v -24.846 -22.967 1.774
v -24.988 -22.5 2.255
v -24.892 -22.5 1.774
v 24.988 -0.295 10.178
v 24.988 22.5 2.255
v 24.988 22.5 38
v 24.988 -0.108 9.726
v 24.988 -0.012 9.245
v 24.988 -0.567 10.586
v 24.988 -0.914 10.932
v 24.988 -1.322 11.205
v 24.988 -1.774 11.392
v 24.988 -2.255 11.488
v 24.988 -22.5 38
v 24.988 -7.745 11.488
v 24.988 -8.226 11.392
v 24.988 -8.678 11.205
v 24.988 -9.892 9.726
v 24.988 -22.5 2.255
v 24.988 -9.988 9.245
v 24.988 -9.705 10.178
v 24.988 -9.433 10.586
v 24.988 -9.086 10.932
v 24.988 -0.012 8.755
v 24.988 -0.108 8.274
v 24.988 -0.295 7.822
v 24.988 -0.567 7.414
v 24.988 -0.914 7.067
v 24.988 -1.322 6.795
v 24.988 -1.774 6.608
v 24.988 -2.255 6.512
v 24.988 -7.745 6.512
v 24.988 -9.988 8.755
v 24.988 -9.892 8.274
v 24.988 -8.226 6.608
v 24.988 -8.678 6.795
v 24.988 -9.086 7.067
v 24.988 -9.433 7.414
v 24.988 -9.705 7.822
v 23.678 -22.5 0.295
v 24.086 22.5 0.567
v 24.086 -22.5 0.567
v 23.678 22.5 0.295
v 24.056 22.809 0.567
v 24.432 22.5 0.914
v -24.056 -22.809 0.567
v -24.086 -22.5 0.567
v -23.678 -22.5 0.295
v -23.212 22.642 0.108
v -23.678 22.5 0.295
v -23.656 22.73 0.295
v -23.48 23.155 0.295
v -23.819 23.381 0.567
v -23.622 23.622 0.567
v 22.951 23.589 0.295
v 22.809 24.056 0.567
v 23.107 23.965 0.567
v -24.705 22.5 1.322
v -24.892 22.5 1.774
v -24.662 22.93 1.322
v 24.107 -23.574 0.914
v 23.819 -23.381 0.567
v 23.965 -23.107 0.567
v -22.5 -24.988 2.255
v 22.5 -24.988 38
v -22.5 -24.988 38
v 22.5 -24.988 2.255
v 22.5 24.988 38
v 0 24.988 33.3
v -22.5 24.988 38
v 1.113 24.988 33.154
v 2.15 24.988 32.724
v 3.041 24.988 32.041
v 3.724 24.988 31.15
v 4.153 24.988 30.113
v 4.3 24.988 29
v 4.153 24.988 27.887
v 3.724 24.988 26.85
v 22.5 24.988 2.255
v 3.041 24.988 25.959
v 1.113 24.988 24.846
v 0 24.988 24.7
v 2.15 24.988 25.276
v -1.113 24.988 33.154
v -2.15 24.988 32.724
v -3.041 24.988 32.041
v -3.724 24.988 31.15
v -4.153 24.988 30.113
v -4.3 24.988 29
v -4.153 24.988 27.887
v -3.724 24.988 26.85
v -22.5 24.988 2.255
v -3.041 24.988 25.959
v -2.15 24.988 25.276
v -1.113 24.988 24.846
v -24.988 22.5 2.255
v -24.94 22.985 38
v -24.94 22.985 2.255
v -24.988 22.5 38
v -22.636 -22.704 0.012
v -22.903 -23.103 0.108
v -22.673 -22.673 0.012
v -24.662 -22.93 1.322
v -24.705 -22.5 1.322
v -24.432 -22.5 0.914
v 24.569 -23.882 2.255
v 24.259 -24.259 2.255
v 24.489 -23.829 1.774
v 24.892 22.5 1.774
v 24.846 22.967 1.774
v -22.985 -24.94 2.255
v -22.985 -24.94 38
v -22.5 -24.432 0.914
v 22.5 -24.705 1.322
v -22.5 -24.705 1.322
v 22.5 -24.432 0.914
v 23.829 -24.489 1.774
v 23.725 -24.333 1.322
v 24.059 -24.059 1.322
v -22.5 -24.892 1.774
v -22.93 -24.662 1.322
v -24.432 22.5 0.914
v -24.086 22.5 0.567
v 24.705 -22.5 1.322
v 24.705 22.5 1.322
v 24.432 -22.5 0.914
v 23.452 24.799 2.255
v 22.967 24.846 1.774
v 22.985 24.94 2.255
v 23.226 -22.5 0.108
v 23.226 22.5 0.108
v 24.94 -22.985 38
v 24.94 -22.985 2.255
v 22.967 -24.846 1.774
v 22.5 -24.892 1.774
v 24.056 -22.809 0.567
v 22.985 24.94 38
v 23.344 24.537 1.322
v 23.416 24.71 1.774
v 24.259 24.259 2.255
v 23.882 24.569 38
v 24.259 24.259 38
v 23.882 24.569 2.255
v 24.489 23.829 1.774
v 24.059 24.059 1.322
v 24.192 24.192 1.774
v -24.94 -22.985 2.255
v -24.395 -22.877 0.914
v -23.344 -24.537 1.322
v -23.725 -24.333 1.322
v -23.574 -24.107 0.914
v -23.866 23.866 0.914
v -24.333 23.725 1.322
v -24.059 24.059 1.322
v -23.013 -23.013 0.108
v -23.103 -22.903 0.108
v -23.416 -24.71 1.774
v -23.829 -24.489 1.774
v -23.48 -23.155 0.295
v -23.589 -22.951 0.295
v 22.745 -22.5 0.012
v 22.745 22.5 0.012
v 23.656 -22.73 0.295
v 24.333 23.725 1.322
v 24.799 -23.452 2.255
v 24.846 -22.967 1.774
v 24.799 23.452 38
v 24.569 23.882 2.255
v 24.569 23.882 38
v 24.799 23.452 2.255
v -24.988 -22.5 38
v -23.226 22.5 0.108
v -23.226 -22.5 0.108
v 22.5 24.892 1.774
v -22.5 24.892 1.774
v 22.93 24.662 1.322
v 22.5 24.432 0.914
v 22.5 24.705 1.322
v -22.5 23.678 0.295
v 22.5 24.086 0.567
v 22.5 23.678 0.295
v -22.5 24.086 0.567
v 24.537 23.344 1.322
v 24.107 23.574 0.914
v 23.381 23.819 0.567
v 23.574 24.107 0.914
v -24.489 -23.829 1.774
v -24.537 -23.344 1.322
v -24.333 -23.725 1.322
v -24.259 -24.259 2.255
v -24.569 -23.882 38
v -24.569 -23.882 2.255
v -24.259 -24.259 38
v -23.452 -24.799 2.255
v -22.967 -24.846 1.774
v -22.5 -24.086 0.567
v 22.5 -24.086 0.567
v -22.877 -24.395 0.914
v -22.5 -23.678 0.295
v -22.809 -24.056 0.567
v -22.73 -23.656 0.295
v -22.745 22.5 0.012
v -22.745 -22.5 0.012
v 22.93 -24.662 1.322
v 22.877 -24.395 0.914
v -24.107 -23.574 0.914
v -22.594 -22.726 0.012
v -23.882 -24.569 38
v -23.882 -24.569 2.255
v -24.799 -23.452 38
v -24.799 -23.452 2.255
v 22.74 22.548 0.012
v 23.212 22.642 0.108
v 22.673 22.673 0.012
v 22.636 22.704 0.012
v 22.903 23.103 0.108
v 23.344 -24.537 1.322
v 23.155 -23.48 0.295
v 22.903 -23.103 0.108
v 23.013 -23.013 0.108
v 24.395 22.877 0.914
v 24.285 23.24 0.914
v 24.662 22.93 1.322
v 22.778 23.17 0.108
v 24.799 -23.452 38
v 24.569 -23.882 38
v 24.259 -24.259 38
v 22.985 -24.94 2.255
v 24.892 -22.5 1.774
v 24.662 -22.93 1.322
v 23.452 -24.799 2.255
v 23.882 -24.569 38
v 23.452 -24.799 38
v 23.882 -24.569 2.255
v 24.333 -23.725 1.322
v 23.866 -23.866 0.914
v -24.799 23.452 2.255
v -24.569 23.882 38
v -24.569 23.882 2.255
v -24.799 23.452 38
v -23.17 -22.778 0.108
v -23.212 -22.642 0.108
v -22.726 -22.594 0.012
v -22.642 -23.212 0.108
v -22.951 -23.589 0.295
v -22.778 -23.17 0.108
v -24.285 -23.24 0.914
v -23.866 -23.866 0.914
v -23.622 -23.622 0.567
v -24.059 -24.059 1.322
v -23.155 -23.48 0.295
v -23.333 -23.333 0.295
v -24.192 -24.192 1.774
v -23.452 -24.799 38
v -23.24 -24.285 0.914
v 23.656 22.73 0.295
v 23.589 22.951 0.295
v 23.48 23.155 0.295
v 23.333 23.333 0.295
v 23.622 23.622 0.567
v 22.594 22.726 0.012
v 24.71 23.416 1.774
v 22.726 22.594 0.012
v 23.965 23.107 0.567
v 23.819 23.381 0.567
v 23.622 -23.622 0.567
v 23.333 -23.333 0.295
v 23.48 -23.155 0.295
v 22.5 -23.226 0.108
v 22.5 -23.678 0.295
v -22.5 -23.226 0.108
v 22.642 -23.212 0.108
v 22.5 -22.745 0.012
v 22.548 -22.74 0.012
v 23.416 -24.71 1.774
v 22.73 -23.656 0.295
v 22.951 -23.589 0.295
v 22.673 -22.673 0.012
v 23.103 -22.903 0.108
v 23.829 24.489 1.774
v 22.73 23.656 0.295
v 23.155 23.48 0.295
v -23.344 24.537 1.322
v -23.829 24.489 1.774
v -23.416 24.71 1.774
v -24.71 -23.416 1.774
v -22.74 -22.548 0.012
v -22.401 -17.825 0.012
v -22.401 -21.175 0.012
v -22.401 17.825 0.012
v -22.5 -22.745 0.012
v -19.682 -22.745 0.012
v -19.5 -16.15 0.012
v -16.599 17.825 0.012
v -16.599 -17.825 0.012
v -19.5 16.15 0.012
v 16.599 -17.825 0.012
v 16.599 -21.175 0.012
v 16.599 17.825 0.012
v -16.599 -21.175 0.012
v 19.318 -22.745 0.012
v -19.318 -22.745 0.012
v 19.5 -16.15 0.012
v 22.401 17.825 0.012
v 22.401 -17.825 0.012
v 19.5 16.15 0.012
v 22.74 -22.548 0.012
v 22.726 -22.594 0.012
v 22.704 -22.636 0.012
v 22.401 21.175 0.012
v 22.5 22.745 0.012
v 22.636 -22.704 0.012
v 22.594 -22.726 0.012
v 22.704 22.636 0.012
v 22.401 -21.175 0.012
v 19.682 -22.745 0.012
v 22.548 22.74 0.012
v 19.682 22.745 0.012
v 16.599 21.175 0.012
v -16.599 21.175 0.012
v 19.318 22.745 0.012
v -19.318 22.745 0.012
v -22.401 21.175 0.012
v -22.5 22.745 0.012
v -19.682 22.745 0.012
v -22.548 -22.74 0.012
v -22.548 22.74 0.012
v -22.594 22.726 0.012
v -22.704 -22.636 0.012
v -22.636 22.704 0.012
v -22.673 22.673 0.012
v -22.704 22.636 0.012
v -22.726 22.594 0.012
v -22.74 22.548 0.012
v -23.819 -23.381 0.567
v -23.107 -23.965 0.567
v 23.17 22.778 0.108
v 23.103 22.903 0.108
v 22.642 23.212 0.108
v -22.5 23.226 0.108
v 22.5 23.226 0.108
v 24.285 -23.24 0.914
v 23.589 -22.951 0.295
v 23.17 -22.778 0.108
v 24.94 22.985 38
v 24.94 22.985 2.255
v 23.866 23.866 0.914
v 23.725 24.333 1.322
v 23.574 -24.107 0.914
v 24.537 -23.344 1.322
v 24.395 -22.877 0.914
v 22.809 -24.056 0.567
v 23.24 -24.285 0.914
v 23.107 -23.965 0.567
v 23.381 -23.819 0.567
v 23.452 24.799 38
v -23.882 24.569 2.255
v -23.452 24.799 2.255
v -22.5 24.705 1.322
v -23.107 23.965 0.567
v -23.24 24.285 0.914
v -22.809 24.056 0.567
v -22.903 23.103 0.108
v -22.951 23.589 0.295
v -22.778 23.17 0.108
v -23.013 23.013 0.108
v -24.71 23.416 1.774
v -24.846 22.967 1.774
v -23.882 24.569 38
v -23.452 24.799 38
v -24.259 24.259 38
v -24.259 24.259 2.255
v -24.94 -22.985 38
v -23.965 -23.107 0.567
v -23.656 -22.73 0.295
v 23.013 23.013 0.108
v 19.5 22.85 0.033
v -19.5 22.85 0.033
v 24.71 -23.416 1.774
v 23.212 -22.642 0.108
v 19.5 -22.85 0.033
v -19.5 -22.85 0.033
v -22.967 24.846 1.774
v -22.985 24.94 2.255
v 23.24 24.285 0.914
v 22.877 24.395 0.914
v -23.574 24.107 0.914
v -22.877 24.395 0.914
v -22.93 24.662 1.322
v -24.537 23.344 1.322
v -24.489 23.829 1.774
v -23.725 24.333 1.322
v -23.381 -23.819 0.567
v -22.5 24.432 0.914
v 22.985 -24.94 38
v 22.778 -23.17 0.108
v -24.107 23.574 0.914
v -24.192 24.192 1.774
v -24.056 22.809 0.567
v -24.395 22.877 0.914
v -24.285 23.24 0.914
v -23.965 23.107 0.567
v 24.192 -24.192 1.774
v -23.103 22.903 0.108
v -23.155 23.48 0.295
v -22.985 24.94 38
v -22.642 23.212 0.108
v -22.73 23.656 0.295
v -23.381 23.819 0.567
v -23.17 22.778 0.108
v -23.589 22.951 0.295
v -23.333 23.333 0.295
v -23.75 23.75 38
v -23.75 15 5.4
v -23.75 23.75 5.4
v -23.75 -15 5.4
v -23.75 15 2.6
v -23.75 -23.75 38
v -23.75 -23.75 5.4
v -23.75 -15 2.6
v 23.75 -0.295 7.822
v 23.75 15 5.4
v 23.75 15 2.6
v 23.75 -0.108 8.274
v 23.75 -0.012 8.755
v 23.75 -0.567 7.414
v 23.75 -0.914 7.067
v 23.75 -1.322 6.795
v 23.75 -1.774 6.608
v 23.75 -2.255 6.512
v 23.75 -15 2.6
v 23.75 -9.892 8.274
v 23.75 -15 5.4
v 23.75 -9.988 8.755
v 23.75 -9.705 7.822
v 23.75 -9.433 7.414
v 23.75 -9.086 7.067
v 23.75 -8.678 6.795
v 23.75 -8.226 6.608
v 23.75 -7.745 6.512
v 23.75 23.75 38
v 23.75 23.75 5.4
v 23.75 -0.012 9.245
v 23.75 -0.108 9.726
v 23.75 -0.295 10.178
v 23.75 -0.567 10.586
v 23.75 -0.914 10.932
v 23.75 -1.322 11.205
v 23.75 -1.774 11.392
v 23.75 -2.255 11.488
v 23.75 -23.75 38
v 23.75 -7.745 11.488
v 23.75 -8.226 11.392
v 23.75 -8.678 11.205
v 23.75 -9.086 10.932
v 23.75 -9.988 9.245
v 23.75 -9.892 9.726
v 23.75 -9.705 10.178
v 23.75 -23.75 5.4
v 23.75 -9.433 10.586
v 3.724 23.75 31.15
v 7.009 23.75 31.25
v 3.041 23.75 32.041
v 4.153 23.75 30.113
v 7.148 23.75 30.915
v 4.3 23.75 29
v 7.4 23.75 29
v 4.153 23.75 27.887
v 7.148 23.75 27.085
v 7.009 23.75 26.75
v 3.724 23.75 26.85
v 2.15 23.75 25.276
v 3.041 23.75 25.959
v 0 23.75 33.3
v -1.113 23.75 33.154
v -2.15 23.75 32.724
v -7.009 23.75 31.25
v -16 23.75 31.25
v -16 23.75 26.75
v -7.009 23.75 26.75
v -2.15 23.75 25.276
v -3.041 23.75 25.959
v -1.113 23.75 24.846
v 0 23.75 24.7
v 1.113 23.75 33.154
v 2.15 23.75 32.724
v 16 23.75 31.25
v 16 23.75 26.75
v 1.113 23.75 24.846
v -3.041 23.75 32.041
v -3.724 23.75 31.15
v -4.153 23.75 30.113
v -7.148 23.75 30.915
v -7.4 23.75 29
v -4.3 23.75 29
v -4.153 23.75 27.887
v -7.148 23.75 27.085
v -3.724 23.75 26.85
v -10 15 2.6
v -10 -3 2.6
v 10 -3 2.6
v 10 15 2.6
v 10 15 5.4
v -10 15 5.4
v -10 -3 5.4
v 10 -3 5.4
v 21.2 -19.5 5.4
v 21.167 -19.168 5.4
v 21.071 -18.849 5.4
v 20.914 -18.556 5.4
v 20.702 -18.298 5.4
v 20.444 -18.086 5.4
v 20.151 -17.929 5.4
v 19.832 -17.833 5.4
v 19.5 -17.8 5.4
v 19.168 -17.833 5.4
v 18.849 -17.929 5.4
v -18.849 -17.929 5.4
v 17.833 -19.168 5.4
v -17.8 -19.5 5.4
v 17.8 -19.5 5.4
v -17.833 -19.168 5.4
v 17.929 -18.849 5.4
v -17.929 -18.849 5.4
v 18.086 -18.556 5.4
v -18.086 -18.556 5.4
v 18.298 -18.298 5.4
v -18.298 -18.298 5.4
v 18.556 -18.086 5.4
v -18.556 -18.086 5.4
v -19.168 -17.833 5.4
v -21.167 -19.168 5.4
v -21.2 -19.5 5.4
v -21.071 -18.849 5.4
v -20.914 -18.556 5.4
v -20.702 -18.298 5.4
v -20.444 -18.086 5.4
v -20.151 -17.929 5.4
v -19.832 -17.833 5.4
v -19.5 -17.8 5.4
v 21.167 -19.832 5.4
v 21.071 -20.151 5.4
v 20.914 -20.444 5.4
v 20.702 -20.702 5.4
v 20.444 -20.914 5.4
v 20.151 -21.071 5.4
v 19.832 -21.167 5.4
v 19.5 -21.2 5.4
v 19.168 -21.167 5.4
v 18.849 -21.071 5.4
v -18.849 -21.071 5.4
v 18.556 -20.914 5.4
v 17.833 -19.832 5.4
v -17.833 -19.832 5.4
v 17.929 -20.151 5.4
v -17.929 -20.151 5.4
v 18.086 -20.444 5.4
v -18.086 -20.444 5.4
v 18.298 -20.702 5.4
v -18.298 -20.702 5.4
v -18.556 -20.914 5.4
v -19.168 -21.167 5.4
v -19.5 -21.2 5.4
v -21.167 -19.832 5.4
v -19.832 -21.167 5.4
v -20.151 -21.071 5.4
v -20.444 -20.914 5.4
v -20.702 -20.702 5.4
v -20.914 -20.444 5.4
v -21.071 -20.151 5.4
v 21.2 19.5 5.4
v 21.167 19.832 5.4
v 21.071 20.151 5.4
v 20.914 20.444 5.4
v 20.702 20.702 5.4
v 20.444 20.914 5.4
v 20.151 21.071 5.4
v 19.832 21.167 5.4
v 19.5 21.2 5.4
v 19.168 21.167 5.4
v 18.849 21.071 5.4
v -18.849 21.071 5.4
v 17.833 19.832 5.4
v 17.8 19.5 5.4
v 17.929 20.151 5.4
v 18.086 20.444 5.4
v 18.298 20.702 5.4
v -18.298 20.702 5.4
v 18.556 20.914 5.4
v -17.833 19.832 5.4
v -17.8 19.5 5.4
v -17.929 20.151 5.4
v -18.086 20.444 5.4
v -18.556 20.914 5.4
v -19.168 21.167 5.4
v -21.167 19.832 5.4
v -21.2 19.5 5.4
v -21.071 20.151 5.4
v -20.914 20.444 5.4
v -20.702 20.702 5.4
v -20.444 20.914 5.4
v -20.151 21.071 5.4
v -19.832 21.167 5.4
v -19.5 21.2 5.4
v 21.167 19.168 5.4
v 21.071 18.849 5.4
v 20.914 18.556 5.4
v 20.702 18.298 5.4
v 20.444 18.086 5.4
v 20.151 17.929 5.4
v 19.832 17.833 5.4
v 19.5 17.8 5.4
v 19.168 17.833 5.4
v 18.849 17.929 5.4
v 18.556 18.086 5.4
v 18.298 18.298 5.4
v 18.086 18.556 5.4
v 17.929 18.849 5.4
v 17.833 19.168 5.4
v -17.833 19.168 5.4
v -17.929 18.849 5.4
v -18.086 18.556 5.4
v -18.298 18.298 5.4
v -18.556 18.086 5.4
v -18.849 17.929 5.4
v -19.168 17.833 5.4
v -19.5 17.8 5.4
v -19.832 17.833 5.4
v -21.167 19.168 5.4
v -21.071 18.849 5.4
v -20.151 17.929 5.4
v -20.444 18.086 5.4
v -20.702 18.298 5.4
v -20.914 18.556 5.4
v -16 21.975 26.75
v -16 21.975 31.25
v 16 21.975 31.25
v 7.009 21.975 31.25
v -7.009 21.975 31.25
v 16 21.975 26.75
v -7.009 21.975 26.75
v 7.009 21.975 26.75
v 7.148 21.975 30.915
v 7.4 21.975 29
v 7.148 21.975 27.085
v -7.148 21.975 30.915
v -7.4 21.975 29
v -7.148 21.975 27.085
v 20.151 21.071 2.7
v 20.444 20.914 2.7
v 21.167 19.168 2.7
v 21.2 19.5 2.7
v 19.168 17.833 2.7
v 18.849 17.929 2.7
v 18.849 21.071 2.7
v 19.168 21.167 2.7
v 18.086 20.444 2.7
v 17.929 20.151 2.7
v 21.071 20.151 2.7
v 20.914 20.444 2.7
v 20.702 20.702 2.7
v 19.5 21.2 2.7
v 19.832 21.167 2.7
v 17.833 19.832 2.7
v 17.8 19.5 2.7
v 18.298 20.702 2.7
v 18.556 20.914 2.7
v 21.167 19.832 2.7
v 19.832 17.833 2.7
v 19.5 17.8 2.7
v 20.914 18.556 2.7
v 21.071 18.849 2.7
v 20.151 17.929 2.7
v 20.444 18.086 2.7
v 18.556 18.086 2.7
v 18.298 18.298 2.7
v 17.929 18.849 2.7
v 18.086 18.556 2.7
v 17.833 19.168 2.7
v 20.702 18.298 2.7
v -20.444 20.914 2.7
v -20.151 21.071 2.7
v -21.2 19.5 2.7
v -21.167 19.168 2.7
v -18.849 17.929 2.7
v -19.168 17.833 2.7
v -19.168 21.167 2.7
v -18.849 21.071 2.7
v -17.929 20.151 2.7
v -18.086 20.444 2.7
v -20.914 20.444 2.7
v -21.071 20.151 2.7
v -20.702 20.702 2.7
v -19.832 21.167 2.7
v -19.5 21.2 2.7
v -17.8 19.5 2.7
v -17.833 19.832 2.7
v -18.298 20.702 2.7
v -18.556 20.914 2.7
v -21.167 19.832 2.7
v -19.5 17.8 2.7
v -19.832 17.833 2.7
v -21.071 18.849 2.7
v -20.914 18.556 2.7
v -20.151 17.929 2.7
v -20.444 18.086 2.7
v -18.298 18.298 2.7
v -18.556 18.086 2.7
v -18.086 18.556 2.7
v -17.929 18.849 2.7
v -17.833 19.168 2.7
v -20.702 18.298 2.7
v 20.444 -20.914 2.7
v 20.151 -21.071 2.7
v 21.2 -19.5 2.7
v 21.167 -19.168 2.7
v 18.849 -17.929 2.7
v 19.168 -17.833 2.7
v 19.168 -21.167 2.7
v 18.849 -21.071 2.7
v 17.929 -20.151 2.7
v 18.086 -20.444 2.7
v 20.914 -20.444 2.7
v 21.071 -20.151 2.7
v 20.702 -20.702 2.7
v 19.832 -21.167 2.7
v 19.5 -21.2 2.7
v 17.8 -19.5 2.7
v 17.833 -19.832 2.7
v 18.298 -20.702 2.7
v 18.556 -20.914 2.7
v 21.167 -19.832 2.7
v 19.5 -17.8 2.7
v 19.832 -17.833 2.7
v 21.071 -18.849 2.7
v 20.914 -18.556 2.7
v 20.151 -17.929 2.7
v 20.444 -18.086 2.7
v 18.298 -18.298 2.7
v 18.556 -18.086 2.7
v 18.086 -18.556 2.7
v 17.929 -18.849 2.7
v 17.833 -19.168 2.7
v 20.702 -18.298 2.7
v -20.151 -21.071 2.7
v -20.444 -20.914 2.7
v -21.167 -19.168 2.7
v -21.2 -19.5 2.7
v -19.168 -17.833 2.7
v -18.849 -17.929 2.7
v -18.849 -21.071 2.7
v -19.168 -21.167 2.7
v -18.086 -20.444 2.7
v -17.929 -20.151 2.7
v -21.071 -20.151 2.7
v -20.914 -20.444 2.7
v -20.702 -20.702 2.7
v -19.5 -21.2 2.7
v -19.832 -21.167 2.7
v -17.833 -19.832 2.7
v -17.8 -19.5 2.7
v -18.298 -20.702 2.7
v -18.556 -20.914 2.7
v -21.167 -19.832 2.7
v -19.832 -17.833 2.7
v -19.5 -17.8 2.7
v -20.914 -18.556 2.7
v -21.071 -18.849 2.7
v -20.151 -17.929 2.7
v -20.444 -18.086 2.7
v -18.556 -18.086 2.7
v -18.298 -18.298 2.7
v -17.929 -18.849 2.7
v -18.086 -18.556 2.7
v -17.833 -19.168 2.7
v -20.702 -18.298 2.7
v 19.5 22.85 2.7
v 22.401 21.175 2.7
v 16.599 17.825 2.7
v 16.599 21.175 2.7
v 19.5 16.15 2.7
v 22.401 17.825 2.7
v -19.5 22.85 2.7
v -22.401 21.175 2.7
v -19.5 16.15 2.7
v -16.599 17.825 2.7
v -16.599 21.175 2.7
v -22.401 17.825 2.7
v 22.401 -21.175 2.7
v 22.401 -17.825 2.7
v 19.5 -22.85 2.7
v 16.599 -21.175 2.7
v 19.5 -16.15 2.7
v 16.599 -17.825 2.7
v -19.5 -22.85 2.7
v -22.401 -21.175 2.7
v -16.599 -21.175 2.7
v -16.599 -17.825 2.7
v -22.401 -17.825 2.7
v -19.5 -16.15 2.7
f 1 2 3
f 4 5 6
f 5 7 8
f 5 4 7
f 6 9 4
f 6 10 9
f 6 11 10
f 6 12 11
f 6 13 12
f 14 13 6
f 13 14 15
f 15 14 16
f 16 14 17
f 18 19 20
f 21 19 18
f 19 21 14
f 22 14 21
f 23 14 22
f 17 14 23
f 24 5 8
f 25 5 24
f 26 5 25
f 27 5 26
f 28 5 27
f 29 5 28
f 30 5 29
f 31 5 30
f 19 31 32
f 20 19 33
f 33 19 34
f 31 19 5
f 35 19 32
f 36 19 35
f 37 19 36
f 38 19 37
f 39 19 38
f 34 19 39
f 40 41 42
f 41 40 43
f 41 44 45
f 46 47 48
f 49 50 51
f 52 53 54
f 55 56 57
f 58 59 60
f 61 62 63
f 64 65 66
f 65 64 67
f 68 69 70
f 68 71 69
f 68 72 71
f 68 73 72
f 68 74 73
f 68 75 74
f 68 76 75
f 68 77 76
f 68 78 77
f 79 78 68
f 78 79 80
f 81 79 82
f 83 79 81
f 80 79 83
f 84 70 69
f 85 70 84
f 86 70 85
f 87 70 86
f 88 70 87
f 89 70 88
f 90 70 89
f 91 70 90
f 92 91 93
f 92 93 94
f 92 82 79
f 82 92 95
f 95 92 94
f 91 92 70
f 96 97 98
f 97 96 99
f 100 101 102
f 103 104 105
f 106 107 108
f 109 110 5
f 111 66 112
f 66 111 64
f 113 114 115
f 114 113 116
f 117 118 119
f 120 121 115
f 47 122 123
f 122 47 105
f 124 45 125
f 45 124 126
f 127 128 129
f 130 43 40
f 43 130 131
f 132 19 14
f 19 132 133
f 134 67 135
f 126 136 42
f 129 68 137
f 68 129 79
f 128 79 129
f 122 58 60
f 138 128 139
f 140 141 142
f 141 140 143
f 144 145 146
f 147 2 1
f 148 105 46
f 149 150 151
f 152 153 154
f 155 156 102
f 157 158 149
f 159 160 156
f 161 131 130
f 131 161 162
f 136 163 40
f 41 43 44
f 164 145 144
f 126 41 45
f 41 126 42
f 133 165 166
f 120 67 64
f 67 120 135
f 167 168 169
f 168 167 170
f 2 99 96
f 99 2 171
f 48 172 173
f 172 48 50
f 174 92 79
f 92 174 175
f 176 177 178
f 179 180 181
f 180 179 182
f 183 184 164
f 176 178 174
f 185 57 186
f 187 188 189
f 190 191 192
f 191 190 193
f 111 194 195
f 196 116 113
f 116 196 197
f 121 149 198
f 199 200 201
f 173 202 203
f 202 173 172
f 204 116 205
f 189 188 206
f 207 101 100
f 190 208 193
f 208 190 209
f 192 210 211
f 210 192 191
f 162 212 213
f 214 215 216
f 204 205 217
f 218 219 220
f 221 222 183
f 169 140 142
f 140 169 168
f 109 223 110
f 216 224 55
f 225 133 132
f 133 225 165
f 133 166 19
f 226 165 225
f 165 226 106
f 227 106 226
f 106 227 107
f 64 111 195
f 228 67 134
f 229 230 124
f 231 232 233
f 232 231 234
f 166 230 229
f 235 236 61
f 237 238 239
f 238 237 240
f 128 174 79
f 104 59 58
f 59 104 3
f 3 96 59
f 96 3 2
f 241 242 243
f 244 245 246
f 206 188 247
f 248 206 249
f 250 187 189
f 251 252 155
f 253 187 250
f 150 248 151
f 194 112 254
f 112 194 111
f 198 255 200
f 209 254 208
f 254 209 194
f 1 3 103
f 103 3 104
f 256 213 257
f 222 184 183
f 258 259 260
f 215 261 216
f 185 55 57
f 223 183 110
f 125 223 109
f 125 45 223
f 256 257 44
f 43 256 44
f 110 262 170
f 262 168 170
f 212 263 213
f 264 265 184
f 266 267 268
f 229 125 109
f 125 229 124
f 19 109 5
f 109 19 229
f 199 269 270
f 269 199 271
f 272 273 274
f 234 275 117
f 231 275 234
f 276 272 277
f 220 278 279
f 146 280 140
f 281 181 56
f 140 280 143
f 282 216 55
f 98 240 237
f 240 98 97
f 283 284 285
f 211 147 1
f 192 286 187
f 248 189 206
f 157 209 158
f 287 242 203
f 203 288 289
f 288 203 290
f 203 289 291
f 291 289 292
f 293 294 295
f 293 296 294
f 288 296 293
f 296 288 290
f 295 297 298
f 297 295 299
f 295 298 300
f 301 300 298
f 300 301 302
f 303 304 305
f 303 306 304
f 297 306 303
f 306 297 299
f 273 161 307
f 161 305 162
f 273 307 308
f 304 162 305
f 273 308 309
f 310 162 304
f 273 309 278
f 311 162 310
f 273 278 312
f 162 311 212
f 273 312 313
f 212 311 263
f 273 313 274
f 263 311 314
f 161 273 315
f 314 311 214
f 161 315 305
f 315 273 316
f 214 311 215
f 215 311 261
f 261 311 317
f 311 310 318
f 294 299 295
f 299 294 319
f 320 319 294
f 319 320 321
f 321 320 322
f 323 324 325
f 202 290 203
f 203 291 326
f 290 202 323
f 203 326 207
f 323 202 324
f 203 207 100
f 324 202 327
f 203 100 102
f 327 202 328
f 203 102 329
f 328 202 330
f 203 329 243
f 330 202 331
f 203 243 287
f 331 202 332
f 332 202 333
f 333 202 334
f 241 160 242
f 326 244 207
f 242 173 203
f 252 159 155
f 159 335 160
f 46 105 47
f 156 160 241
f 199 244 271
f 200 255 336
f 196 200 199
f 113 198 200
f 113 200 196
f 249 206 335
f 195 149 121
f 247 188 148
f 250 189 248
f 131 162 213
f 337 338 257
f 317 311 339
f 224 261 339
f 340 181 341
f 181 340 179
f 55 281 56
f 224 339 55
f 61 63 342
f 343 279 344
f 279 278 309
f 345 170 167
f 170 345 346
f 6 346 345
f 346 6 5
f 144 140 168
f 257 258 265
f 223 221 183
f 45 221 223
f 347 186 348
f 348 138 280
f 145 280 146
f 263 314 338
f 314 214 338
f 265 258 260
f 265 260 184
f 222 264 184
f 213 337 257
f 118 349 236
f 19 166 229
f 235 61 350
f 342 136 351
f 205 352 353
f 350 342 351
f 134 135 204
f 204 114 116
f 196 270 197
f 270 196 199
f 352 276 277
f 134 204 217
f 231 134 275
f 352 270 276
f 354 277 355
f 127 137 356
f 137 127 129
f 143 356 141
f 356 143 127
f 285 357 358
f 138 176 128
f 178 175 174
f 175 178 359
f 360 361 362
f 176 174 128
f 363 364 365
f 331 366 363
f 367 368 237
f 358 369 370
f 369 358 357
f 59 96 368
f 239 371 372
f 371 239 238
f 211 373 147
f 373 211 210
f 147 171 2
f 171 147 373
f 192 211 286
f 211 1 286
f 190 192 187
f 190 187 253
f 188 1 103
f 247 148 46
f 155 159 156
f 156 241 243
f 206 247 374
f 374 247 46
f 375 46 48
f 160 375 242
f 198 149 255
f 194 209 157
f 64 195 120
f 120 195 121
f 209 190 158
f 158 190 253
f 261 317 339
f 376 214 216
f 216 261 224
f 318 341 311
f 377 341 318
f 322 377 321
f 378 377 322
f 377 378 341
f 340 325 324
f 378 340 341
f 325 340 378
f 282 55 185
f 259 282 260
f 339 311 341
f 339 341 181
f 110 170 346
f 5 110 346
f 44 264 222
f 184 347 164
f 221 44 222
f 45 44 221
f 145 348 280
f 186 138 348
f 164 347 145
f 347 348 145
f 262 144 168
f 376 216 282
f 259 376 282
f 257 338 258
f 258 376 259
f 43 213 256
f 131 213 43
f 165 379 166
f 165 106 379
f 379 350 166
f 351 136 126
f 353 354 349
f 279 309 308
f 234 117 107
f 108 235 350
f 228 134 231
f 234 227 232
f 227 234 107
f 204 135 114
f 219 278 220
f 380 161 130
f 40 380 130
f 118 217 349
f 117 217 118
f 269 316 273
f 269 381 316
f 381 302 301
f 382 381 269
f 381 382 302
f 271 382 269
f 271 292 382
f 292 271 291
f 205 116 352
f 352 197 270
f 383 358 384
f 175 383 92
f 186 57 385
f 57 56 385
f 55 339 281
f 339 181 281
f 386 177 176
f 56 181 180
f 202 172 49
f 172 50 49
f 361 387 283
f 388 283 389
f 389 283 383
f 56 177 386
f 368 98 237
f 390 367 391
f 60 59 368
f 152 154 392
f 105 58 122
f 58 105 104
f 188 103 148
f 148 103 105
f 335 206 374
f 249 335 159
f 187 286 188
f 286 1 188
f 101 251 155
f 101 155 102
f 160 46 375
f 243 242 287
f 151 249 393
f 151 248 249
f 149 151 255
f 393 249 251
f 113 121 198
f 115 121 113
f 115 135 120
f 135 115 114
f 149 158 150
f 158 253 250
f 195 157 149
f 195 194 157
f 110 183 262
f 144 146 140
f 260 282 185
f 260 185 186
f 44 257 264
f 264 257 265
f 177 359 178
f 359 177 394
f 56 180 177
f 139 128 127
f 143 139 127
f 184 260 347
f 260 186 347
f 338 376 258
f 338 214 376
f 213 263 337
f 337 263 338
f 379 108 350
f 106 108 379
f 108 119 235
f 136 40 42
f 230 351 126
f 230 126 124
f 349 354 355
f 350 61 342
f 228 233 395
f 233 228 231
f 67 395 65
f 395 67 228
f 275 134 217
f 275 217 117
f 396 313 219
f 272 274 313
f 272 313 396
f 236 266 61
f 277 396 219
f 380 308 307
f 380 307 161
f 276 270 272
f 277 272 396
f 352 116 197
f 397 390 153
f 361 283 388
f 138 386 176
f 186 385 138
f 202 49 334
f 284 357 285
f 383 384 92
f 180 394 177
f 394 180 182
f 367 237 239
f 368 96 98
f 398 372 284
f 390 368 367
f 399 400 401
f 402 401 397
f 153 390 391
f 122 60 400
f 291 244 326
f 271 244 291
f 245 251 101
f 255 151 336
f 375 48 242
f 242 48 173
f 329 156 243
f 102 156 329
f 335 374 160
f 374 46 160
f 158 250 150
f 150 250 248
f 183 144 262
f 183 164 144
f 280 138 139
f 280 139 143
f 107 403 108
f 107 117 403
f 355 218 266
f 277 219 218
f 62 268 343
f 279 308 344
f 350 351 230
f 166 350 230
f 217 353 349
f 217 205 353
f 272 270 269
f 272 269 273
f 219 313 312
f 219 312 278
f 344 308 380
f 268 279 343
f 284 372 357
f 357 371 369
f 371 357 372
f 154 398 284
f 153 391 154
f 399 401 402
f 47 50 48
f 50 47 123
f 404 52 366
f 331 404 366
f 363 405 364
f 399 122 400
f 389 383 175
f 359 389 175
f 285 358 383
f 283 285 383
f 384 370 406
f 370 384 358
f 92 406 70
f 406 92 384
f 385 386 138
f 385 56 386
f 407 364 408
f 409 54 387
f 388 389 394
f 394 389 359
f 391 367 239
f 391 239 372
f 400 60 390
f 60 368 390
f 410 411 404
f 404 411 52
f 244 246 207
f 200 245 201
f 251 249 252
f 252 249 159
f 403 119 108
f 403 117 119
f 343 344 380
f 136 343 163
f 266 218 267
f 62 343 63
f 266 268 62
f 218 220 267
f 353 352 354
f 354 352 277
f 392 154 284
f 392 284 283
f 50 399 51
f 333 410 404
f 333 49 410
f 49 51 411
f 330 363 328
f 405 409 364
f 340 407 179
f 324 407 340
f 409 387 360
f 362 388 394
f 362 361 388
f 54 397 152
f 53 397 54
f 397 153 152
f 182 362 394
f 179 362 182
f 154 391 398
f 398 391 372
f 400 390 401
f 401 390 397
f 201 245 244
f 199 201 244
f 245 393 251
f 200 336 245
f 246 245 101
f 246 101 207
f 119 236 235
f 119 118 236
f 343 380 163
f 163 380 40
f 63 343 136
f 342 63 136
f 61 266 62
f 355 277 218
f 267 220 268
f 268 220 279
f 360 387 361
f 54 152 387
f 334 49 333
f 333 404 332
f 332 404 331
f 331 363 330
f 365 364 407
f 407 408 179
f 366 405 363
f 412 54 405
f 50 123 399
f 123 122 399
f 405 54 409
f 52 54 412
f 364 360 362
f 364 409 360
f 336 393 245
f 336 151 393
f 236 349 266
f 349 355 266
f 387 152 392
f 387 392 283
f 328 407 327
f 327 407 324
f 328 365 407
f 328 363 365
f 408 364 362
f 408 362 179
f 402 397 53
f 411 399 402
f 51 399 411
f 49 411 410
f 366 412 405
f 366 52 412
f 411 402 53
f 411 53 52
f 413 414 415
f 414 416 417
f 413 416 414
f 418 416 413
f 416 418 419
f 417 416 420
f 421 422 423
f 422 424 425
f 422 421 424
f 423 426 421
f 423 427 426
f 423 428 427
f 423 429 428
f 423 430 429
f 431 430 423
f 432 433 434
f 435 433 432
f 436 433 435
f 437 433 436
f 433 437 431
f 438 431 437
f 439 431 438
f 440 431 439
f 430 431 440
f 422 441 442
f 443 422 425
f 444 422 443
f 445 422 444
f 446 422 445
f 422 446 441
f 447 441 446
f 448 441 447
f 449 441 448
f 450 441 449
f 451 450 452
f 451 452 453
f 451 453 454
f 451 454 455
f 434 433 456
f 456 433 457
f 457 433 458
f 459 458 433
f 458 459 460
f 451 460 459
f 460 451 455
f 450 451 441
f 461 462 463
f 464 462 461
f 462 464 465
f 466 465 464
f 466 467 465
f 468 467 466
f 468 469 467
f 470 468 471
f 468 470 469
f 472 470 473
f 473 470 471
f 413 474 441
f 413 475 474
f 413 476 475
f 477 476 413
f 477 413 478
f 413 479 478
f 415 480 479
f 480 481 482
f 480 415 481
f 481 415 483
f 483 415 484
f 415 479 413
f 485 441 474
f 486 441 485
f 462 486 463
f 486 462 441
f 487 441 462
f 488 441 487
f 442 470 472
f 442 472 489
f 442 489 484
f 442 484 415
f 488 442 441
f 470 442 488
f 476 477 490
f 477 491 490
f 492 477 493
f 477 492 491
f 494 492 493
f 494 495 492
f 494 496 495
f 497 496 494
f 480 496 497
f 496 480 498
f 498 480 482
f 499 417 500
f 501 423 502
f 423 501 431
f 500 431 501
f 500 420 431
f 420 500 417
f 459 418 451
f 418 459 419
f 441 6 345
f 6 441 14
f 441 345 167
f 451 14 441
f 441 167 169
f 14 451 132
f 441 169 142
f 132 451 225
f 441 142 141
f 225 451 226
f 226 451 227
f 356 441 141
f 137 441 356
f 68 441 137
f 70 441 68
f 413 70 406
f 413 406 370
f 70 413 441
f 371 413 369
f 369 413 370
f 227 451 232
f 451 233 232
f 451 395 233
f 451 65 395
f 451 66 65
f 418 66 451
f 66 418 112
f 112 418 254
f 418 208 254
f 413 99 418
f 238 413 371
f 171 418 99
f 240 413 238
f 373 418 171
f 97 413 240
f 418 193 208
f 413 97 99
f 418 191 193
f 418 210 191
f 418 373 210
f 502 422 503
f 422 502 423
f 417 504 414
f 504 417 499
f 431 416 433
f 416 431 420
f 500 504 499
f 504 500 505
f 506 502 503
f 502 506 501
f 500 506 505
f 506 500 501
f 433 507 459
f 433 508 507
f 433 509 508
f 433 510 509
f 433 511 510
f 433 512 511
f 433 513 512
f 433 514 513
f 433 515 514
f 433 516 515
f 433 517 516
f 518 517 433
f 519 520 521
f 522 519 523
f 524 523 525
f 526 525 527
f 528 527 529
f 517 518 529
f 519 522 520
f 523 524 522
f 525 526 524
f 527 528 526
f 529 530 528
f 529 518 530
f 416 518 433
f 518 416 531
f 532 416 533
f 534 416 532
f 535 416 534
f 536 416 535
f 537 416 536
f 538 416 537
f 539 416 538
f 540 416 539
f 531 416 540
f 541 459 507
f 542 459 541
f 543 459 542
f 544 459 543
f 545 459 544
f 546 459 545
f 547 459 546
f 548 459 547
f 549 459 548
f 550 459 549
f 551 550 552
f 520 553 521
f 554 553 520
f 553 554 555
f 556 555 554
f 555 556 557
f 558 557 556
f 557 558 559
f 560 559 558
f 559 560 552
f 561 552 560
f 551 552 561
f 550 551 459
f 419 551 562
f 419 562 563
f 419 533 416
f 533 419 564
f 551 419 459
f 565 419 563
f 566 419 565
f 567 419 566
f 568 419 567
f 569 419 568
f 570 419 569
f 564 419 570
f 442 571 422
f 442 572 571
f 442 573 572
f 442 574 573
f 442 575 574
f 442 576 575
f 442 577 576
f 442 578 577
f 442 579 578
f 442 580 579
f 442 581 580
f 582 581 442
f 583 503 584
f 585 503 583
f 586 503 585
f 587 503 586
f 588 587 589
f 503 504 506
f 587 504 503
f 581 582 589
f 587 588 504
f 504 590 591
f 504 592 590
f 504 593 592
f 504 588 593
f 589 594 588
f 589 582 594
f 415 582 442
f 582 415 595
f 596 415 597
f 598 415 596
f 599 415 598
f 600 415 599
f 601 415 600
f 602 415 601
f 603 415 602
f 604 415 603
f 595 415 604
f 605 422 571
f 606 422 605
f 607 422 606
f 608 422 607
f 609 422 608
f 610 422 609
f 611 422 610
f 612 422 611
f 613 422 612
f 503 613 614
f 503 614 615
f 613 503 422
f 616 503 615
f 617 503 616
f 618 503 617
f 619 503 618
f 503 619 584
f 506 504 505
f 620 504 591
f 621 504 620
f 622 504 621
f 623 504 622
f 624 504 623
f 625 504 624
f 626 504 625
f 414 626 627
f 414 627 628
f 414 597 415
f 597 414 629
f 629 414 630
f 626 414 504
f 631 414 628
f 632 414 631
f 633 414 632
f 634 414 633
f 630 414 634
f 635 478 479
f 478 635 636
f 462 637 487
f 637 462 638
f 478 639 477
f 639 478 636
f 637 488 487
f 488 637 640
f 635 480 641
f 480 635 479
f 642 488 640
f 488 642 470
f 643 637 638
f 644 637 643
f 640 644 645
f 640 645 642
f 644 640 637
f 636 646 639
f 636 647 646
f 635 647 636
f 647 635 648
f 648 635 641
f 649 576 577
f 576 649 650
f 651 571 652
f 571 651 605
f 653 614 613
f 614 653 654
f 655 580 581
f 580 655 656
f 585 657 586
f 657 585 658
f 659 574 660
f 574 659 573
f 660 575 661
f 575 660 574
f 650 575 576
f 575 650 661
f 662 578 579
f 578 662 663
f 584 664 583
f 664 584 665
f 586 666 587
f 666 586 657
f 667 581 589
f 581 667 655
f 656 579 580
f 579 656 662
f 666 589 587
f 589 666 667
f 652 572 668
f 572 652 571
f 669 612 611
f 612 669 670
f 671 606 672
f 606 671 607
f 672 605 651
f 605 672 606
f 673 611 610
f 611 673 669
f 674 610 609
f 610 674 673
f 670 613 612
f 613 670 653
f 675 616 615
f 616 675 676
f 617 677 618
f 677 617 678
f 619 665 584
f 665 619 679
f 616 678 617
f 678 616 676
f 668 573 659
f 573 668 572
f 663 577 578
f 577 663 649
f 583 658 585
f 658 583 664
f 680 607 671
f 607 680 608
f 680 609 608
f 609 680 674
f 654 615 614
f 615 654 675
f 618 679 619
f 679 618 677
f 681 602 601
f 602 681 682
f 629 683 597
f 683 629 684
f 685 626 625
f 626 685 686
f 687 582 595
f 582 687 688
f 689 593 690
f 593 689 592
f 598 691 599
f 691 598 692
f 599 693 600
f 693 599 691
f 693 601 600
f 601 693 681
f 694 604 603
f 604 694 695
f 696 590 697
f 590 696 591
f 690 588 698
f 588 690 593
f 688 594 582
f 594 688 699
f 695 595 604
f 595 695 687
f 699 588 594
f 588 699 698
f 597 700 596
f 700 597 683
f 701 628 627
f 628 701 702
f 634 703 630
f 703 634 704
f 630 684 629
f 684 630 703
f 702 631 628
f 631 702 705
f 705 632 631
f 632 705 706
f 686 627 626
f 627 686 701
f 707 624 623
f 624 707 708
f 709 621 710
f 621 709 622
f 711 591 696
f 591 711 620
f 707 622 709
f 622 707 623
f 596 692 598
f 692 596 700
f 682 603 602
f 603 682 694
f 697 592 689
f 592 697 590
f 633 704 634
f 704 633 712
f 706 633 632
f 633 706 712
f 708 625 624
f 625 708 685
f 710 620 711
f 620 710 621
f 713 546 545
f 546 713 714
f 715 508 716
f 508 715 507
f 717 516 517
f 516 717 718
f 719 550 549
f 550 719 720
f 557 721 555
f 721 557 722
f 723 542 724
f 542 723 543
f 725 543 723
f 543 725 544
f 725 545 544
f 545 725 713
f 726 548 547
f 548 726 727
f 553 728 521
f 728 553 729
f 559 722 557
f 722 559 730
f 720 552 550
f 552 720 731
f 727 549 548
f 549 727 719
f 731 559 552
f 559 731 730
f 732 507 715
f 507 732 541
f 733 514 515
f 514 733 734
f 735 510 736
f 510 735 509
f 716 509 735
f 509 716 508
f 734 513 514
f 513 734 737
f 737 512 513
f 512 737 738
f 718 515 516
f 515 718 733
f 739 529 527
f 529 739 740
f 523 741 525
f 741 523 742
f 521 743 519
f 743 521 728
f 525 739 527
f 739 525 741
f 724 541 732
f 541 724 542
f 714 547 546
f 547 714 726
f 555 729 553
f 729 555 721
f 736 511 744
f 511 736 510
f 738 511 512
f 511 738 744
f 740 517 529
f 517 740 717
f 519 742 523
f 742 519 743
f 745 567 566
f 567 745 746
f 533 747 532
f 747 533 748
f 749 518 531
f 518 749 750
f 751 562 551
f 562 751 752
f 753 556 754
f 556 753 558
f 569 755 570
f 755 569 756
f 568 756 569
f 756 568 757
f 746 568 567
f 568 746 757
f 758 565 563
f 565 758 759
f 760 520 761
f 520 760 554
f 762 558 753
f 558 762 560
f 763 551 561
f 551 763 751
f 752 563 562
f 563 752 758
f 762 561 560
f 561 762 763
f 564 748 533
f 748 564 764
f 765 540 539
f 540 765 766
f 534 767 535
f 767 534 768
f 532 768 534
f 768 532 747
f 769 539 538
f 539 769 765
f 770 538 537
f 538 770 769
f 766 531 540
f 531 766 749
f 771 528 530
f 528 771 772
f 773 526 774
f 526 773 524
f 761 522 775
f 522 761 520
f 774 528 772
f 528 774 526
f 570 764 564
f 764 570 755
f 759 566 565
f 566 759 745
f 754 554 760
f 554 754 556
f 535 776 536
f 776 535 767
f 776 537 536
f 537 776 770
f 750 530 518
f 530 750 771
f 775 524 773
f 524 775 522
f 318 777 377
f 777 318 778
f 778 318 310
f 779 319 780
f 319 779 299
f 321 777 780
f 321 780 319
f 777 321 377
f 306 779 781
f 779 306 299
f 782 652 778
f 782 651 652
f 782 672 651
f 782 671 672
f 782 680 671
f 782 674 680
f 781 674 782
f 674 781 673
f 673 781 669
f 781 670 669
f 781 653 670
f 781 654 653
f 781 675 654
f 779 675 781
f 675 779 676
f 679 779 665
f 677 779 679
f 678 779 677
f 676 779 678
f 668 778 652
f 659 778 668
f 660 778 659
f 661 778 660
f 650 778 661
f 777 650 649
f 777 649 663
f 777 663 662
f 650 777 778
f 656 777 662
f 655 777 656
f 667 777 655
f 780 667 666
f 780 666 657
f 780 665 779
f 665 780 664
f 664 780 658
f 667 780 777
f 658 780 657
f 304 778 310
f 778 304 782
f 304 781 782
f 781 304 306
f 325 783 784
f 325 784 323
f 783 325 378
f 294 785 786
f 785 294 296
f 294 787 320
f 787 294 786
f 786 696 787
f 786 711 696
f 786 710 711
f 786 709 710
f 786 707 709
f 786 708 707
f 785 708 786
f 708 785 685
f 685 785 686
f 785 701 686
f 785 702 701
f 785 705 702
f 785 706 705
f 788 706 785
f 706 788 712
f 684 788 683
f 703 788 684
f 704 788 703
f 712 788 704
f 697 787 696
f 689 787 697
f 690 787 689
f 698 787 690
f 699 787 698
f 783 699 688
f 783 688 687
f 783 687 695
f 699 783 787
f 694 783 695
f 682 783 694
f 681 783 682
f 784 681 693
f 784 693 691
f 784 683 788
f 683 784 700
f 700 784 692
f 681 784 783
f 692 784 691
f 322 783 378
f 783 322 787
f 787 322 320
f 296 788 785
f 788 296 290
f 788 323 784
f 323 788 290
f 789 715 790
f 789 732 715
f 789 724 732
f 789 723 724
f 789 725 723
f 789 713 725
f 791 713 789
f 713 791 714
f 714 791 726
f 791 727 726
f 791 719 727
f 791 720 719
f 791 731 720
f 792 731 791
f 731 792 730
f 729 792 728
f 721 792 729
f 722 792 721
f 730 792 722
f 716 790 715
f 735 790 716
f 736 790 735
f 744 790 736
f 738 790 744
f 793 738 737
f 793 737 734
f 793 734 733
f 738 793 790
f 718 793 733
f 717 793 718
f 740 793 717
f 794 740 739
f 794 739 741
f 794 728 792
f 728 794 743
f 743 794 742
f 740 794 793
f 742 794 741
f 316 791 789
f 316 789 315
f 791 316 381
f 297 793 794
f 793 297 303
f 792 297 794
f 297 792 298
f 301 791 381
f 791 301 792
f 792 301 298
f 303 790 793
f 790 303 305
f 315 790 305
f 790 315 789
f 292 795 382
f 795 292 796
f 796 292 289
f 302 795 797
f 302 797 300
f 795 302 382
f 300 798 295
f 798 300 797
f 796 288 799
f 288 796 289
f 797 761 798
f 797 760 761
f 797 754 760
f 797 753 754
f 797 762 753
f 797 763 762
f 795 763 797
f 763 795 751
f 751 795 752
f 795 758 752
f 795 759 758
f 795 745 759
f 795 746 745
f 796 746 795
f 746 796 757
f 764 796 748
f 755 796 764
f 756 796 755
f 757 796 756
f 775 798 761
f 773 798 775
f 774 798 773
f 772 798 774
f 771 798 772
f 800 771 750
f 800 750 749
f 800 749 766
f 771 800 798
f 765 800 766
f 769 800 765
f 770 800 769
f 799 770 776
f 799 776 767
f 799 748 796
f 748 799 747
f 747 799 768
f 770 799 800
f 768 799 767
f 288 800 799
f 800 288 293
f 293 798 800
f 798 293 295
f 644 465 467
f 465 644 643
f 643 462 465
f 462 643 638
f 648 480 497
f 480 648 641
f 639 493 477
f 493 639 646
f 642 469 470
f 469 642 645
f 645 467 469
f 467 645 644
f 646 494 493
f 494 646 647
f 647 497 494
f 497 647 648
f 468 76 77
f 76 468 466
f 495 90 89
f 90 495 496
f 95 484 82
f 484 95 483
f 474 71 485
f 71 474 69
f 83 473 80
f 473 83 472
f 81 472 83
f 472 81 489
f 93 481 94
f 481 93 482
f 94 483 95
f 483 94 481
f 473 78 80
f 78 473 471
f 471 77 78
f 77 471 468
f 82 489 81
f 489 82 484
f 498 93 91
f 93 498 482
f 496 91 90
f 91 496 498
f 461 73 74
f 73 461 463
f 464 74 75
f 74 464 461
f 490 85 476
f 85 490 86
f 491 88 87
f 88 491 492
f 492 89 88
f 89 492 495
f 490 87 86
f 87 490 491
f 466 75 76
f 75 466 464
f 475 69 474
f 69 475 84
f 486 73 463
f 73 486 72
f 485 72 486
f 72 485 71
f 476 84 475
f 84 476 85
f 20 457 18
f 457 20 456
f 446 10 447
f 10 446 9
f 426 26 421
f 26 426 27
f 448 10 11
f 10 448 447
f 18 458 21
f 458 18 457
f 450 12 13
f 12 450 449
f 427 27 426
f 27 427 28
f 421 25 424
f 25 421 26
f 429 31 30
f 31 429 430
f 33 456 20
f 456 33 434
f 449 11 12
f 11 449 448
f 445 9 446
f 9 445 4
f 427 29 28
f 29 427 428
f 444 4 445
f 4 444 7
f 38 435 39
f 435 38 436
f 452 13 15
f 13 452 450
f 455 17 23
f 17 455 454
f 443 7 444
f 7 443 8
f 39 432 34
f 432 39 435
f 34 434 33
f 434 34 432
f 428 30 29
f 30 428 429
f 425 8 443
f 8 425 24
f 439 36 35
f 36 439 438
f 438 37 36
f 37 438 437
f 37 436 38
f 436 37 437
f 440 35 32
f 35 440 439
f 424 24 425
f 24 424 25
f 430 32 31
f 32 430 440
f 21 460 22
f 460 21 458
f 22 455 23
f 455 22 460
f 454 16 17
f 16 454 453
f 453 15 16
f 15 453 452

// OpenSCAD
union() // SharpSCAD generated scene: bottom
{
  { // module: shell
    color( c= "gray" )
    {
      difference()
      {
        union()
        {
          translate( v= [ 0, 0, 20.25 ] )
          {
            difference()
            {
              { // module: roundedcube
                translate( v= [ -25, -25, -20.25 ] )
                {
                  translate( v= [ 0, 0, 0 ] )
                  {
                    hull()
                    {
                      translate( v= [ 2.5, 2.5, 2.5 ] )
                      {
                        sphere( r= 2.5, $fn= 32 );
                      }
                      translate( v= [ 2.5, 47.5, 2.5 ] )
                      {
                        sphere( r= 2.5, $fn= 32 );
                      }
                      translate( v= [ 2.5, 2.5, 38 ] )
                      {
                        sphere( r= 2.5, $fn= 32 );
                      }
                      translate( v= [ 2.5, 47.5, 38 ] )
                      {
                        sphere( r= 2.5, $fn= 32 );
                      }
                      translate( v= [ 47.5, 2.5, 2.5 ] )
                      {
                        sphere( r= 2.5, $fn= 32 );
                      }
                      translate( v= [ 47.5, 47.5, 2.5 ] )
                      {
                        sphere( r= 2.5, $fn= 32 );
                      }
                      translate( v= [ 47.5, 2.5, 38 ] )
                      {
                        sphere( r= 2.5, $fn= 32 );
                      }
                      translate( v= [ 47.5, 47.5, 38 ] )
                      {
                        sphere( r= 2.5, $fn= 32 );
                      }
                      union()
                      {
                      }
                    }
                  }
                }
              }
              translate( v= [ 0, 0, 1.35 ] )
              {
                cube( size= [ 47.5, 47.5, 38 ], center= true );
              }
              translate( v= [ 0, 0, 47.75 ] )
              {
                cube( size= 60, center= true );
              }
            }
          }
          difference()
          {
            translate( v= [ 0, 0, 3.9 ] )
            {
              cube( size= [ 47.5, 47.5, 3 ], center= true );
            }
            translate( v= [ 0, 0, 3.9 ] )
            {
              difference()
              {
                cube( size= [ 50, 30, 3.1 ], center= true );
                translate( v= [ 0, 22, 0 ] )
                {
                  cube( size= [ 20, 50, 3.1 ], center= true );
                }
              }
            }
          }
          translate( v= [ 0, 23.1, 29 ] )
          {
            cube( size= [ 32, 2.25, 4.5 ], center= true );
          }
        }
        translate( v= [ 19.5, 19.5, -0.1 ] )
        {
          rotate( a= [ 0, 0, 30 ] )
          {
            cylinder( r= 3.35, $fn= 6, h= 2.8 );
          }
        }
        mirror( v= [ 1, 0, 0 ] )
        {
          translate( v= [ 19.5, 19.5, -0.1 ] )
          {
            rotate( a= [ 0, 0, 30 ] )
            {
              cylinder( r= 3.35, $fn= 6, h= 2.8 );
            }
          }
        }
        mirror( v= [ 0, 1, 0 ] )
        {
          translate( v= [ 19.5, 19.5, -0.1 ] )
          {
            rotate( a= [ 0, 0, 30 ] )
            {
              cylinder( r= 3.35, $fn= 6, h= 2.8 );
            }
          }
        }
        mirror( v= [ 0, 1, 0 ] )
        {
          mirror( v= [ 1, 0, 0 ] )
          {
            translate( v= [ 19.5, 19.5, -0.1 ] )
            {
              rotate( a= [ 0, 0, 30 ] )
              {
                cylinder( r= 3.35, $fn= 6, h= 2.8 );
              }
            }
          }
        }
        translate( v= [ 19.5, 19.5, -0.1 ] )
        {
          scale( v= 1 )
          {
            union()
            {
              translate( v= [ 0, 0, 34.3 ] )
              {
                cylinder( r= 2.7, $fn= 32, h= 4 );
              }
              cylinder( r= 1.7, $fn= 32, h= 38.1 );
            }
          }
        }
        mirror( v= [ 1, 0, 0 ] )
        {
          translate( v= [ 19.5, 19.5, -0.1 ] )
          {
            scale( v= 1 )
            {
              union()
              {
                translate( v= [ 0, 0, 34.3 ] )
                {
                  cylinder( r= 2.7, $fn= 32, h= 4 );
                }
                cylinder( r= 1.7, $fn= 32, h= 38.1 );
              }
            }
          }
        }
        mirror( v= [ 0, 1, 0 ] )
        {
          translate( v= [ 19.5, 19.5, -0.1 ] )
          {
            scale( v= 1 )
            {
              union()
              {
                translate( v= [ 0, 0, 34.3 ] )
                {
                  cylinder( r= 2.7, $fn= 32, h= 4 );
                }
                cylinder( r= 1.7, $fn= 32, h= 38.1 );
              }
            }
          }
        }
        mirror( v= [ 0, 1, 0 ] )
        {
          mirror( v= [ 1, 0, 0 ] )
          {
            translate( v= [ 19.5, 19.5, -0.1 ] )
            {
              scale( v= 1 )
              {
                union()
                {
                  translate( v= [ 0, 0, 34.3 ] )
                  {
                    cylinder( r= 2.7, $fn= 32, h= 4 );
                  }
                  cylinder( r= 1.7, $fn= 32, h= 38.1 );
                }
              }
            }
          }
        }
        translate( v= [ 0, 23.75, 29 ] )
        {
          rotate( a= [ 90, 0, 0 ] )
          {
            cylinder( r= 7.4, $fn= 24, h= 4.5 );
          }
        }
        translate( v= [ 0, 23.65, 29 ] )
        {
          rotate( a= [ -90, 0, 0 ] )
          {
            cylinder( r= 4.3, $fn= 24, h= 4 );
          }
        }
        translate( v= [ 25, -5, 9 ] )
        {
          { // module: roundedcube
            translate( v= [ -25, -5, -2.5 ] )
            {
              translate( v= [ 0, 0, 0 ] )
              {
                hull()
                {
                  translate( v= [ 2.5, 2.5, 2.5 ] )
                  {
                    sphere( r= 2.5, $fn= 32 );
                  }
                  translate( v= [ 2.5, 7.5, 2.5 ] )
                  {
                    sphere( r= 2.5, $fn= 32 );
                  }
                  translate( v= [ 2.5, 2.5, 2.5 ] )
                  {
                    sphere( r= 2.5, $fn= 32 );
                  }
                  translate( v= [ 2.5, 7.5, 2.5 ] )
                  {
                    sphere( r= 2.5, $fn= 32 );
                  }
                  translate( v= [ 47.5, 2.5, 2.5 ] )
                  {
                    sphere( r= 2.5, $fn= 32 );
                  }
                  translate( v= [ 47.5, 7.5, 2.5 ] )
                  {
                    sphere( r= 2.5, $fn= 32 );
                  }
                  translate( v= [ 47.5, 2.5, 2.5 ] )
                  {
                    sphere( r= 2.5, $fn= 32 );
                  }
                  translate( v= [ 47.5, 7.5, 2.5 ] )
                  {
                    sphere( r= 2.5, $fn= 32 );
                  }
                  union()
                  {
                  }
                }
              }
            }
          }
        }
      }
    }
  }
}
